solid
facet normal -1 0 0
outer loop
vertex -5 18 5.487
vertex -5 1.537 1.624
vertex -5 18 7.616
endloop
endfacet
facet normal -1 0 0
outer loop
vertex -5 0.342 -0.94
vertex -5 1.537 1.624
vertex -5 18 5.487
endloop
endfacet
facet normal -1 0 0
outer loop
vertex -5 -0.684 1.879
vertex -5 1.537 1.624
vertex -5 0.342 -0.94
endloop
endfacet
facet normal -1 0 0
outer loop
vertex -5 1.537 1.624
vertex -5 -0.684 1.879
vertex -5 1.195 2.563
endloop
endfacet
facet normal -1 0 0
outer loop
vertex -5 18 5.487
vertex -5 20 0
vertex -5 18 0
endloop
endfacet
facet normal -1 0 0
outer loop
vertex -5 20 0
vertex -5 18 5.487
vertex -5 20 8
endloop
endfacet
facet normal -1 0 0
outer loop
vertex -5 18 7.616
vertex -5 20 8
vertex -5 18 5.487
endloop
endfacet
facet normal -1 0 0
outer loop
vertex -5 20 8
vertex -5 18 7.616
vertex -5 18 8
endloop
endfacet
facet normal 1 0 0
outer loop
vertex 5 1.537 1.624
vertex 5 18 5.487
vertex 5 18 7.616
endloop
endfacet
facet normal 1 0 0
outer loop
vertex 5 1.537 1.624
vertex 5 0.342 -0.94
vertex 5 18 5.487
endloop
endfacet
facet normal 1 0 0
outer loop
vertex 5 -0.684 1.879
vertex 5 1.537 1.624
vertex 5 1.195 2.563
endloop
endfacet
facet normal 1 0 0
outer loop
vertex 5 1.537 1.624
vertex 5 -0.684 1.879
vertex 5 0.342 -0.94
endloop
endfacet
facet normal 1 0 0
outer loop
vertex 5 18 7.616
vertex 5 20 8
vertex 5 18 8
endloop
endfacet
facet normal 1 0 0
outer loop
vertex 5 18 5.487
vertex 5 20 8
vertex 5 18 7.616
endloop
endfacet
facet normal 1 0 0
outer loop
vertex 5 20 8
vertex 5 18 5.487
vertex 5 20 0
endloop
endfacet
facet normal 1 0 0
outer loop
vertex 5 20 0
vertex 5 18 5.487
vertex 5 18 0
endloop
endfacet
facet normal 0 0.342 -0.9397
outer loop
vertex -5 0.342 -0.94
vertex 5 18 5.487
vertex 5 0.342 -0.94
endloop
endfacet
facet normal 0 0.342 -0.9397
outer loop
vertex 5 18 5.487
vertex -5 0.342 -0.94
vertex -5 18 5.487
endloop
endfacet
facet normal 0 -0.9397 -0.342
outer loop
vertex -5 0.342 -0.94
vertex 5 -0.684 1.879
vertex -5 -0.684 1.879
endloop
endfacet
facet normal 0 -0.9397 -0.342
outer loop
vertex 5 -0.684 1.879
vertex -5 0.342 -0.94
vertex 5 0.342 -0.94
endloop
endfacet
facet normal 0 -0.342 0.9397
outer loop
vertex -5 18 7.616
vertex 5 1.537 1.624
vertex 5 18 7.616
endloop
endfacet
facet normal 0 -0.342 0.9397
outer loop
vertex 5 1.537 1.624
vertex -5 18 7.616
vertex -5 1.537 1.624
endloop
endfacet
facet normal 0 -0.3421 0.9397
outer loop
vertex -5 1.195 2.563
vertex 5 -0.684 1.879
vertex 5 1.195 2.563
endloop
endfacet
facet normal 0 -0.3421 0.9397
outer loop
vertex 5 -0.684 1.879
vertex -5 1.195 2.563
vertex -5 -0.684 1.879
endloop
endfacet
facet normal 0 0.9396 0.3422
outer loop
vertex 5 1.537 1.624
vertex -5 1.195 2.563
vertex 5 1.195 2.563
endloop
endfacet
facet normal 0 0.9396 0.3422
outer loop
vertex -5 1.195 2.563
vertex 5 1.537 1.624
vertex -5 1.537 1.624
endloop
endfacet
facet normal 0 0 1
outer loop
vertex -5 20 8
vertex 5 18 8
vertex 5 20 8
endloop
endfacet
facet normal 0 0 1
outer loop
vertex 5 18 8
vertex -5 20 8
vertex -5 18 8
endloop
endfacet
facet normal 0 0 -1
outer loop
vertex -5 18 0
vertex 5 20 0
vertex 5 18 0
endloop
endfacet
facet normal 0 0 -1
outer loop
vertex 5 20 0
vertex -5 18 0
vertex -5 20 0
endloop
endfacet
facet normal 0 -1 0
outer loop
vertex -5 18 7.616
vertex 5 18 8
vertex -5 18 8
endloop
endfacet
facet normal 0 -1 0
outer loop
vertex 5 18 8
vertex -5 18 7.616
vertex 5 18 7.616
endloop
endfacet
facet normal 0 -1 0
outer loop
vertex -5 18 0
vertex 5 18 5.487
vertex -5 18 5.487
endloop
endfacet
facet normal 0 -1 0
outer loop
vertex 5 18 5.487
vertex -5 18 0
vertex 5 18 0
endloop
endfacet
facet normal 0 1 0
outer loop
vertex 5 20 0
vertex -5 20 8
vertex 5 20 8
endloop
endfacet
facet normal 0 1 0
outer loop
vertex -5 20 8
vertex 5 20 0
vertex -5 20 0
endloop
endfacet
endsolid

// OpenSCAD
WIDTH = 10;
LONGER_ARM_HEIGHT = 20;
SHORTER_ARM_LENGTH = 2;
ARM_ANGLE = 70;
STAND_OFFSET = 18;
STAND_THICKNESS = 2;

//full_stand();
full_stand();

function stand_height(angle, base_offset) = 4;

module main_l(){
    union(){
        translate([0,0,LONGER_ARM_HEIGHT/2])
        cube([WIDTH,STAND_THICKNESS,LONGER_ARM_HEIGHT], true);        
        
        translate([0,0,STAND_THICKNESS/2])                
        translate([0,-SHORTER_ARM_LENGTH/2,0])            
        rotate([90,0,0])        
        cube([WIDTH,STAND_THICKNESS,SHORTER_ARM_LENGTH], true);                
    }    
}

module back_wall(){
    //TODO: improve the formula with tan sth is wrong here
    //height = tan(ARM_ANGLE) * STAND_OFFSET;
    height = 8;    
    cube([WIDTH,STAND_THICKNESS,height], true);         
    
    //TODO: cut the angle to match the main L
}

module full_stand(){  
    height = 8;
    
    union(){
        rotate([-ARM_ANGLE,0,0])        
        main_l();        
        translate([0,STAND_OFFSET + STAND_THICKNESS/2,height/2])
        back_wall();
    }
}
